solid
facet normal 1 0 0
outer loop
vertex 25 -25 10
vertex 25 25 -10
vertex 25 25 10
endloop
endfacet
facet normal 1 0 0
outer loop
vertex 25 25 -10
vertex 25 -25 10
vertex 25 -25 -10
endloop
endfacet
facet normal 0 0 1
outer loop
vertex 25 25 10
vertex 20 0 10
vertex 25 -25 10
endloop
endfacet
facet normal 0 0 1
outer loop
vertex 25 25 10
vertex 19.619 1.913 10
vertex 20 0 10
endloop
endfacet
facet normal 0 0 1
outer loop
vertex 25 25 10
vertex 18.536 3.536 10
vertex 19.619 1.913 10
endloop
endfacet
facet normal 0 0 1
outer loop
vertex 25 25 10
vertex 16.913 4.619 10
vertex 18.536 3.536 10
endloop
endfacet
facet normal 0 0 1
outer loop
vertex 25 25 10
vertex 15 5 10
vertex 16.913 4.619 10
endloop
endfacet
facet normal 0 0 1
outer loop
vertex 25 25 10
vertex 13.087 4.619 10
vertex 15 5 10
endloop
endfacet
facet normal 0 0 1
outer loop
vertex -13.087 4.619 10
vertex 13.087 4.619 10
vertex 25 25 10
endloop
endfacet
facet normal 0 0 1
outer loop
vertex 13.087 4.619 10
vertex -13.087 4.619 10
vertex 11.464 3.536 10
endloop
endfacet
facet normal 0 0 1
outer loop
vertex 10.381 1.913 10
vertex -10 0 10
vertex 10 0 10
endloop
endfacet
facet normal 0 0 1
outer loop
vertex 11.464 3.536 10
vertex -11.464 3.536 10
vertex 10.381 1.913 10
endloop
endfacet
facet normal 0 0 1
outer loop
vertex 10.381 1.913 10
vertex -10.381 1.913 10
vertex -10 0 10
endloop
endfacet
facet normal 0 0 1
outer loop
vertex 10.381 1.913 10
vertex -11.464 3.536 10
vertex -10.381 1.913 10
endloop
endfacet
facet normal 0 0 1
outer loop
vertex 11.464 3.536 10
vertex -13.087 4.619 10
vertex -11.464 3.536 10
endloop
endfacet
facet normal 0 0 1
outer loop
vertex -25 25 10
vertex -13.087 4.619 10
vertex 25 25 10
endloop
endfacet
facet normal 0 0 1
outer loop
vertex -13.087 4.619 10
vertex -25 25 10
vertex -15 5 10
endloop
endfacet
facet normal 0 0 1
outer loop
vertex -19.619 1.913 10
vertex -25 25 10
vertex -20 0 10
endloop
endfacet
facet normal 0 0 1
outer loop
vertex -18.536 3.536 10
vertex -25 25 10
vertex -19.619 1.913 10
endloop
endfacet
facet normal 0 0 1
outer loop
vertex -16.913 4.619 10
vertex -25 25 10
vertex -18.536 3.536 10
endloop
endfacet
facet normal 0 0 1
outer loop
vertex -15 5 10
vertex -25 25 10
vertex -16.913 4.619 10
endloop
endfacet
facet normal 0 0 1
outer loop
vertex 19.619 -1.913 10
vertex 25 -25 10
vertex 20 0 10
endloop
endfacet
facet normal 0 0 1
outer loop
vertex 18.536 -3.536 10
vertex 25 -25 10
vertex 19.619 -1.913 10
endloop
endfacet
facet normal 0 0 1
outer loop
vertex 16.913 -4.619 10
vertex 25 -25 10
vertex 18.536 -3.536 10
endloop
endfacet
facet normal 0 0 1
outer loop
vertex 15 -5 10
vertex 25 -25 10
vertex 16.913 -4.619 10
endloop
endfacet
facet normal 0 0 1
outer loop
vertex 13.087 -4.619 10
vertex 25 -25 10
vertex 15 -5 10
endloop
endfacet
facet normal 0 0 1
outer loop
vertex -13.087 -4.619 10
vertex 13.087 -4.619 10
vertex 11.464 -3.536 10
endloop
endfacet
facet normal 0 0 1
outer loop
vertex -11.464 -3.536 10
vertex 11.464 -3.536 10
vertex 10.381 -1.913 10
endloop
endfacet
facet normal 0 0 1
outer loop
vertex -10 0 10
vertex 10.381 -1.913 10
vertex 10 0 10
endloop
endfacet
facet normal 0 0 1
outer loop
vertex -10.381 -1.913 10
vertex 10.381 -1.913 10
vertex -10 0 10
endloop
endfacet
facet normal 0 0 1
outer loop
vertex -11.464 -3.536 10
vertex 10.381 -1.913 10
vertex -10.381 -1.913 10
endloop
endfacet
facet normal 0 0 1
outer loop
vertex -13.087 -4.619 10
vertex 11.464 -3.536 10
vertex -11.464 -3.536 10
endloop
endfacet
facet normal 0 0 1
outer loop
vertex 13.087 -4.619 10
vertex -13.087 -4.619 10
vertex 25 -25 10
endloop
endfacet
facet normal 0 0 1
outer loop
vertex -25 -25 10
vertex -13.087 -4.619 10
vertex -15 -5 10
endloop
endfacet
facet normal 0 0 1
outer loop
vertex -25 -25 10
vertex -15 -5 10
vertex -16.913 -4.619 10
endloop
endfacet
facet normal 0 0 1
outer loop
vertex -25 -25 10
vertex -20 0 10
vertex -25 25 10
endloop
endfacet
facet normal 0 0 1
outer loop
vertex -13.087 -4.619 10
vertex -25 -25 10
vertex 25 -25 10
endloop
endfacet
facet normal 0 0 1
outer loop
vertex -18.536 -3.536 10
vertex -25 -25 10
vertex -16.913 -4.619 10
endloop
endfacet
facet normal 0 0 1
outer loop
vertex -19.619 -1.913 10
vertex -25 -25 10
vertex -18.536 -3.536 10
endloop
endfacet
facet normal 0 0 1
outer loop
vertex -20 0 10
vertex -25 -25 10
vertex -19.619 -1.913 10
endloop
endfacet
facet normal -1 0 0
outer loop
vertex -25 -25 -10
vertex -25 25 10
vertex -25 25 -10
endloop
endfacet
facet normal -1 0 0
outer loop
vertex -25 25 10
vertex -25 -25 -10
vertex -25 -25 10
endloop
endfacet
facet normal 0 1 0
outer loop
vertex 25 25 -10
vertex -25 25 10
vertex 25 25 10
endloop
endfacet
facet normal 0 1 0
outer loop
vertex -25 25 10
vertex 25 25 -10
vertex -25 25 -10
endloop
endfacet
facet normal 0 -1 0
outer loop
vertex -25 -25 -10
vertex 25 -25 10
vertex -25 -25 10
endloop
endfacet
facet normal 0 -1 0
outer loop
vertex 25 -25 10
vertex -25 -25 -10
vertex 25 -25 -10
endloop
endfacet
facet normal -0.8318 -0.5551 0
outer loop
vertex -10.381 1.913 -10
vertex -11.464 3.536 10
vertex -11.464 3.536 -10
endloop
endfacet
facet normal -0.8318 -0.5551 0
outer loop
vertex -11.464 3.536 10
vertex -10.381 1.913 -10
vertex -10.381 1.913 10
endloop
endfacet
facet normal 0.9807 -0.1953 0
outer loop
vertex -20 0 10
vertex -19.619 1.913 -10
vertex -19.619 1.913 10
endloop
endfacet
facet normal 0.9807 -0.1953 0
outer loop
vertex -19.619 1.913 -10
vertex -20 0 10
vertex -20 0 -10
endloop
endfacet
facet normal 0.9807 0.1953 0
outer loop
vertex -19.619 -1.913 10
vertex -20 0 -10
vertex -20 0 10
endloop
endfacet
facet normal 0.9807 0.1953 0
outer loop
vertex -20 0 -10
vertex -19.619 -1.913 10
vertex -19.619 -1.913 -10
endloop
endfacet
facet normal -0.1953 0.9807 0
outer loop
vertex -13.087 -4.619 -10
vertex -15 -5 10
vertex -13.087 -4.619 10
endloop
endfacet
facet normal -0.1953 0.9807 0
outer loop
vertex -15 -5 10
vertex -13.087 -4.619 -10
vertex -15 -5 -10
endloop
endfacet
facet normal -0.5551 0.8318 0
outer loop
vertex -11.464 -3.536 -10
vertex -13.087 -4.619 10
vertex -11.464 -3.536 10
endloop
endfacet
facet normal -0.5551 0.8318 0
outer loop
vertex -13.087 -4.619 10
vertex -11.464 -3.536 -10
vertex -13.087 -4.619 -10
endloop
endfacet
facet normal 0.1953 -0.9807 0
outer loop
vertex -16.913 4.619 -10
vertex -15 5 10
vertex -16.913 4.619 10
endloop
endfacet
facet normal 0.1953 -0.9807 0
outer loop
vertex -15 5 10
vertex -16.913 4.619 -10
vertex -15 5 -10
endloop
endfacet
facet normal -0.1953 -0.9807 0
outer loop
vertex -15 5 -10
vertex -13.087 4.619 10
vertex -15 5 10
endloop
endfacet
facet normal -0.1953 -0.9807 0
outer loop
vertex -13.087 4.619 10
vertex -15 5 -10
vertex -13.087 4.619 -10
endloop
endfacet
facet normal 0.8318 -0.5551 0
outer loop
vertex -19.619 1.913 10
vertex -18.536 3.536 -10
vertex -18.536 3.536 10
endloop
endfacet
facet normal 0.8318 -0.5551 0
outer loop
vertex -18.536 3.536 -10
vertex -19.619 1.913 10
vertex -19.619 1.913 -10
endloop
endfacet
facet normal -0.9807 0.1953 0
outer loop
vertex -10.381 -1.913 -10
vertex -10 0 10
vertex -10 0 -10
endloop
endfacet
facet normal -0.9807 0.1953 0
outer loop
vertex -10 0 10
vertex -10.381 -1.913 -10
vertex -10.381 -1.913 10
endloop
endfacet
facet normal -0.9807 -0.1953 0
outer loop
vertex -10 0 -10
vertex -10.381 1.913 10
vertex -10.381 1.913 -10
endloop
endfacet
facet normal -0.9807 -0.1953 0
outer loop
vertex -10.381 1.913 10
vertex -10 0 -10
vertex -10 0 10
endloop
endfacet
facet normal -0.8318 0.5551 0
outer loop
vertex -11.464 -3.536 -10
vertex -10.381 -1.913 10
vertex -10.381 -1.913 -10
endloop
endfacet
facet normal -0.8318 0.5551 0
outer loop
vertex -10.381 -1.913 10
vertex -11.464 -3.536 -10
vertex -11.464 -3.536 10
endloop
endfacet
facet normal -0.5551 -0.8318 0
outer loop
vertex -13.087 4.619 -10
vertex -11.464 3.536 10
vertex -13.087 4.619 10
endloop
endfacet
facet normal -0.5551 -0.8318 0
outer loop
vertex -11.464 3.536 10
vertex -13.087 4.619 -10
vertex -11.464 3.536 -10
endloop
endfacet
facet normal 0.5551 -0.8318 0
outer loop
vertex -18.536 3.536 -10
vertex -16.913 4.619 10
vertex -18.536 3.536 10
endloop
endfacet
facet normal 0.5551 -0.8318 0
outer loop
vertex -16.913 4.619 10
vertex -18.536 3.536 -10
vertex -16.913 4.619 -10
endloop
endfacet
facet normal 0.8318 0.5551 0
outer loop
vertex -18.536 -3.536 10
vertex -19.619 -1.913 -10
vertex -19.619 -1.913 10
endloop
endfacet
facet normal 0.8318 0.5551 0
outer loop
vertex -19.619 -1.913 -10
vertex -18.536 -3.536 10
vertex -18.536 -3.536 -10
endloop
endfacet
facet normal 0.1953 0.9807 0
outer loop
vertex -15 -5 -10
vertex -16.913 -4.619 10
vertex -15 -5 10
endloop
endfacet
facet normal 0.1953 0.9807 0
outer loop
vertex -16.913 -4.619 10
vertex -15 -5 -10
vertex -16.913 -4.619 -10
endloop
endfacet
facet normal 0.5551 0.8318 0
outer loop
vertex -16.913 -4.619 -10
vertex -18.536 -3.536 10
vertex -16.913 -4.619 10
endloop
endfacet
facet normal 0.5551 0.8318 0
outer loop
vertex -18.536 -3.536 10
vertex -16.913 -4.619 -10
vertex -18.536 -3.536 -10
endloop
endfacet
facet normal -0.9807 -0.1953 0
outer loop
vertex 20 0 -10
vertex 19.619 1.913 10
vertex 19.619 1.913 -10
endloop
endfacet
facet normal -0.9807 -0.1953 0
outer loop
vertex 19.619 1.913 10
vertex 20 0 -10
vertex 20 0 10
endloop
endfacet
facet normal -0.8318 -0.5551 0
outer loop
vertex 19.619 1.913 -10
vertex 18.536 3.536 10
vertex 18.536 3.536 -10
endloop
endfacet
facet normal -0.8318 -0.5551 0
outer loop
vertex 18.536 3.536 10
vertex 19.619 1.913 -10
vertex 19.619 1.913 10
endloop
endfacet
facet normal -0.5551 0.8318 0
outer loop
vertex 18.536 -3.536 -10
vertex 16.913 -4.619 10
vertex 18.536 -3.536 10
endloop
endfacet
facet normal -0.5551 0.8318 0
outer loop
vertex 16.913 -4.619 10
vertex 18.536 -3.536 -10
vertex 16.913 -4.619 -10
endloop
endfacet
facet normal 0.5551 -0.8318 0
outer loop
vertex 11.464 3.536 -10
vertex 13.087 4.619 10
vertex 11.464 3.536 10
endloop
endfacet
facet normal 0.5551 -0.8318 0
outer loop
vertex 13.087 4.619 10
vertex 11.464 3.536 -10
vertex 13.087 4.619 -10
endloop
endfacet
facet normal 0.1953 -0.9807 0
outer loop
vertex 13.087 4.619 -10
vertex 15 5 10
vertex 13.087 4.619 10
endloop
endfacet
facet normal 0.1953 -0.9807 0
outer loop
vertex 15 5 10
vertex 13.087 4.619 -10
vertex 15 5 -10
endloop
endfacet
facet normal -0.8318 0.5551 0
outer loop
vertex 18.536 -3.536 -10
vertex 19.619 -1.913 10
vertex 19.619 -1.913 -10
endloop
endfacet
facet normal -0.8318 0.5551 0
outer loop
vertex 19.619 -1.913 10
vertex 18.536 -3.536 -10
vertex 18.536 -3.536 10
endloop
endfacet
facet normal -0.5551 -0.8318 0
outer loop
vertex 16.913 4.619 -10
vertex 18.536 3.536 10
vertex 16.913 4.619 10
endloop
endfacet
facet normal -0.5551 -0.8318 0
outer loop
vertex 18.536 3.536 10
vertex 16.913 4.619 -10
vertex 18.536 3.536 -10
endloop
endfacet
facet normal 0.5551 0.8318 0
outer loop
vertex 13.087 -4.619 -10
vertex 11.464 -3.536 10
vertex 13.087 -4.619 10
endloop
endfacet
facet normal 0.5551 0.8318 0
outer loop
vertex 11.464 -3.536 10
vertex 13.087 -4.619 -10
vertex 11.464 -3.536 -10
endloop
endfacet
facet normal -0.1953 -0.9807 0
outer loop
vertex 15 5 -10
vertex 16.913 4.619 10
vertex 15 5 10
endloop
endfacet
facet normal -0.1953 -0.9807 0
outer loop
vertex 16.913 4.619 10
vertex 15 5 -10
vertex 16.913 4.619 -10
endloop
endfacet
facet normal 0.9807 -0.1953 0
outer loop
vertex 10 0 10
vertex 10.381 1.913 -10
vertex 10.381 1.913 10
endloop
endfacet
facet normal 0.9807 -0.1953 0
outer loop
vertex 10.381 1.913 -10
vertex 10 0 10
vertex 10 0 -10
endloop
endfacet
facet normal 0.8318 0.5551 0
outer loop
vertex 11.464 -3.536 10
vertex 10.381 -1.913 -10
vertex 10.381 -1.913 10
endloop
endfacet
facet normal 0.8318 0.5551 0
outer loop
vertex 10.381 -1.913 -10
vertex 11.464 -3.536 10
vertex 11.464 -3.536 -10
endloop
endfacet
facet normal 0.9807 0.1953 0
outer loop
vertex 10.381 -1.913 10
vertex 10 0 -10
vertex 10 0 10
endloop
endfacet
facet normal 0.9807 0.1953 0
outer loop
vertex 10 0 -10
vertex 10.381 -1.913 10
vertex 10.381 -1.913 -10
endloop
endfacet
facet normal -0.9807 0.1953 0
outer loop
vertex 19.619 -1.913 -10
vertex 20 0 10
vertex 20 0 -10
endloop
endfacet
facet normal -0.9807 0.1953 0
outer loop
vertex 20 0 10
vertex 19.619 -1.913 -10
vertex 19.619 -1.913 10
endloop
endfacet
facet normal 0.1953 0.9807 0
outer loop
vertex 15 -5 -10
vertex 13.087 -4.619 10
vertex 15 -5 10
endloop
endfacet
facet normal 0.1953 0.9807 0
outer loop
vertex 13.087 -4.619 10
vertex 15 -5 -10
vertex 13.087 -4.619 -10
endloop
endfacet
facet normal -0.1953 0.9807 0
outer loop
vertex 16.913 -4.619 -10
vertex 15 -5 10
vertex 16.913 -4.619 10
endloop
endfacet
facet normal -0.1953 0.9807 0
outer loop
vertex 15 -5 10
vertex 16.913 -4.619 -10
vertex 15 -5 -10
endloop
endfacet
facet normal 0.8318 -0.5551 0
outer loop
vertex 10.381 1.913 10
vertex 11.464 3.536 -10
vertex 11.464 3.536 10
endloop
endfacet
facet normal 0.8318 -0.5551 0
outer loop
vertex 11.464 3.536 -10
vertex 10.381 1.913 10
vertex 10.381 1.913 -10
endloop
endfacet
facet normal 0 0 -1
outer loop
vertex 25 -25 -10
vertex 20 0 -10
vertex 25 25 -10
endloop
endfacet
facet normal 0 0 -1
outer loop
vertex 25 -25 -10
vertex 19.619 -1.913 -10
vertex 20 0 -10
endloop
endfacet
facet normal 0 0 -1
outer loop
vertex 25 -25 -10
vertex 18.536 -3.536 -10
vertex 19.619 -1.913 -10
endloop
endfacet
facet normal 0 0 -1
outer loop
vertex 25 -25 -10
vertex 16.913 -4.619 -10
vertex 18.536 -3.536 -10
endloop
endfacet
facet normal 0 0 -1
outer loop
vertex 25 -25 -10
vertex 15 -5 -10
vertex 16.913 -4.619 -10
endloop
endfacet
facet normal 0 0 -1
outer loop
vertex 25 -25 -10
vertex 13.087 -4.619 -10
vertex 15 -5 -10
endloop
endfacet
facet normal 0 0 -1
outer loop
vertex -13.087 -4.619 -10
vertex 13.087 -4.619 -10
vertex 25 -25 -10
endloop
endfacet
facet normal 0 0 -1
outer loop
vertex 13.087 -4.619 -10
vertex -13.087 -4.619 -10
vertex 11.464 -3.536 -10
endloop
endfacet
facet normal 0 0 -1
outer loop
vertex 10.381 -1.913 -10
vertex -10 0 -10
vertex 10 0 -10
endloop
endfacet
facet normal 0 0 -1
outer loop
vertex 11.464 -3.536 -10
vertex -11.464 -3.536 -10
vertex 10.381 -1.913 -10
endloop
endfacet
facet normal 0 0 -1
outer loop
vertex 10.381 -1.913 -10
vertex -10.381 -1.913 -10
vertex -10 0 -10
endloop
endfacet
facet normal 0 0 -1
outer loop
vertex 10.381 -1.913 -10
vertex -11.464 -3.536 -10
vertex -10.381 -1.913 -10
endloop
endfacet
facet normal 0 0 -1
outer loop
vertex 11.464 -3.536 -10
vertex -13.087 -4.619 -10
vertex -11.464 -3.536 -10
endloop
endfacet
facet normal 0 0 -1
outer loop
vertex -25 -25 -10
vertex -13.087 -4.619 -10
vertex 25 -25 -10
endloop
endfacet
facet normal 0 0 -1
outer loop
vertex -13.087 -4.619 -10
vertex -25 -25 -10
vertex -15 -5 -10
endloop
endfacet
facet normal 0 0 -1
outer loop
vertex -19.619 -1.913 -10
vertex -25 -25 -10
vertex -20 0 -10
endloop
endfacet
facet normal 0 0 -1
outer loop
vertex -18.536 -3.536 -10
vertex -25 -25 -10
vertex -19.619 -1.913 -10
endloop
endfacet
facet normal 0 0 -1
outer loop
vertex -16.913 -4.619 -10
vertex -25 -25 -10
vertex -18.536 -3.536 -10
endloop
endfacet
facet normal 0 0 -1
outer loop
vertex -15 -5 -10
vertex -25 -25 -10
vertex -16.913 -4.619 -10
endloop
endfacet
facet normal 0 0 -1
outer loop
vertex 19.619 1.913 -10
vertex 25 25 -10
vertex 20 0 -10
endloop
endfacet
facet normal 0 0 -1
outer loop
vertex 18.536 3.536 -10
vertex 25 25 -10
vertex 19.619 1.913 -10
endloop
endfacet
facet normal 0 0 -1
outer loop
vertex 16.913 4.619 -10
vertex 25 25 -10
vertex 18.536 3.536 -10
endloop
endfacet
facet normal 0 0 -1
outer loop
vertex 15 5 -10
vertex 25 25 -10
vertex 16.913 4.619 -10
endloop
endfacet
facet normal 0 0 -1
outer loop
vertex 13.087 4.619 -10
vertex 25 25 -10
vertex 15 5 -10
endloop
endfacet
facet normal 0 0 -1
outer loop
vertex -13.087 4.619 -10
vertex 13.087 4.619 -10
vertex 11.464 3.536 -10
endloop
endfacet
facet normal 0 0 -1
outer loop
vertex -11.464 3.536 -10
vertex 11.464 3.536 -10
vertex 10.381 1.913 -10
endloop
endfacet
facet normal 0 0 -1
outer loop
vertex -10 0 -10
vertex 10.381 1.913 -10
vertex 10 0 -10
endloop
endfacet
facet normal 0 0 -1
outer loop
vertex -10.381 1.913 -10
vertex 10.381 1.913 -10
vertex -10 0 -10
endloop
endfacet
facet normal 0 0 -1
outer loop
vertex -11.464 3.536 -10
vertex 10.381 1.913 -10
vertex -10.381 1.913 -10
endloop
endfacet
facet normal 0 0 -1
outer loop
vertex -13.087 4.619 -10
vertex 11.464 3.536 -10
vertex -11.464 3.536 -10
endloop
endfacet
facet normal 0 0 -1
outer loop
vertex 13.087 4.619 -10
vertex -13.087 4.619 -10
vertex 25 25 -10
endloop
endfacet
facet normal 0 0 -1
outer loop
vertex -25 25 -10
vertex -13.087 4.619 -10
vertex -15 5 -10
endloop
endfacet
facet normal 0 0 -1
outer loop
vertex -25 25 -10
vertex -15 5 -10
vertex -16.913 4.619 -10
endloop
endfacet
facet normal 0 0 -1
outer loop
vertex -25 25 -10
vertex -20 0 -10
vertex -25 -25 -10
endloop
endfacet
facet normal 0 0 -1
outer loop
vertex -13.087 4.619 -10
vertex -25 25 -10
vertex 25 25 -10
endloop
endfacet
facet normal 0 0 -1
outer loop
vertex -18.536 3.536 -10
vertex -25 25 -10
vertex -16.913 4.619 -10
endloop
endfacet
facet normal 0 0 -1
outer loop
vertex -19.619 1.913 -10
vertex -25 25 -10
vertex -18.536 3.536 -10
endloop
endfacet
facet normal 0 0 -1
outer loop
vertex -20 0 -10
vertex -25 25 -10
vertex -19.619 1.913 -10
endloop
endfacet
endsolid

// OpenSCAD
// Parameters for the flange plate
plate_length = 50;  // Length of the plate
plate_width = 50;   // Width of the plate
plate_thickness = 5; // Thickness of the plate
hole_diameter = 10; // Diameter of the holes
hole_spacing = 30;  // Distance between the centers of the two holes

// Function to create a single flange plate
module flange_plate() {
    difference() {
        // Base plate
        cube([plate_length, plate_width, plate_thickness], center = true);
        
        // Holes
        translate([-hole_spacing / 2, 0, 0])
            cylinder(h = plate_thickness + 1, d = hole_diameter, center = true);
        translate([hole_spacing / 2, 0, 0])
            cylinder(h = plate_thickness + 1, d = hole_diameter, center = true);
    }
}

// Assembly of the flange plates
module assembly() {
    // Layer 1: Top flange plate
    translate([0, 0, plate_thickness * 1.5])
        flange_plate();
    
    // Layer 2: Second flange plate
    translate([0, 0, plate_thickness * 0.5])
        flange_plate();
    
    // Layer 3: Third flange plate
    translate([0, 0, -plate_thickness * 0.5])
        flange_plate();
    
    // Layer 4: Bottom flange plate
    translate([0, 0, -plate_thickness * 1.5])
        flange_plate();
}

// Render the assembly
assembly();
